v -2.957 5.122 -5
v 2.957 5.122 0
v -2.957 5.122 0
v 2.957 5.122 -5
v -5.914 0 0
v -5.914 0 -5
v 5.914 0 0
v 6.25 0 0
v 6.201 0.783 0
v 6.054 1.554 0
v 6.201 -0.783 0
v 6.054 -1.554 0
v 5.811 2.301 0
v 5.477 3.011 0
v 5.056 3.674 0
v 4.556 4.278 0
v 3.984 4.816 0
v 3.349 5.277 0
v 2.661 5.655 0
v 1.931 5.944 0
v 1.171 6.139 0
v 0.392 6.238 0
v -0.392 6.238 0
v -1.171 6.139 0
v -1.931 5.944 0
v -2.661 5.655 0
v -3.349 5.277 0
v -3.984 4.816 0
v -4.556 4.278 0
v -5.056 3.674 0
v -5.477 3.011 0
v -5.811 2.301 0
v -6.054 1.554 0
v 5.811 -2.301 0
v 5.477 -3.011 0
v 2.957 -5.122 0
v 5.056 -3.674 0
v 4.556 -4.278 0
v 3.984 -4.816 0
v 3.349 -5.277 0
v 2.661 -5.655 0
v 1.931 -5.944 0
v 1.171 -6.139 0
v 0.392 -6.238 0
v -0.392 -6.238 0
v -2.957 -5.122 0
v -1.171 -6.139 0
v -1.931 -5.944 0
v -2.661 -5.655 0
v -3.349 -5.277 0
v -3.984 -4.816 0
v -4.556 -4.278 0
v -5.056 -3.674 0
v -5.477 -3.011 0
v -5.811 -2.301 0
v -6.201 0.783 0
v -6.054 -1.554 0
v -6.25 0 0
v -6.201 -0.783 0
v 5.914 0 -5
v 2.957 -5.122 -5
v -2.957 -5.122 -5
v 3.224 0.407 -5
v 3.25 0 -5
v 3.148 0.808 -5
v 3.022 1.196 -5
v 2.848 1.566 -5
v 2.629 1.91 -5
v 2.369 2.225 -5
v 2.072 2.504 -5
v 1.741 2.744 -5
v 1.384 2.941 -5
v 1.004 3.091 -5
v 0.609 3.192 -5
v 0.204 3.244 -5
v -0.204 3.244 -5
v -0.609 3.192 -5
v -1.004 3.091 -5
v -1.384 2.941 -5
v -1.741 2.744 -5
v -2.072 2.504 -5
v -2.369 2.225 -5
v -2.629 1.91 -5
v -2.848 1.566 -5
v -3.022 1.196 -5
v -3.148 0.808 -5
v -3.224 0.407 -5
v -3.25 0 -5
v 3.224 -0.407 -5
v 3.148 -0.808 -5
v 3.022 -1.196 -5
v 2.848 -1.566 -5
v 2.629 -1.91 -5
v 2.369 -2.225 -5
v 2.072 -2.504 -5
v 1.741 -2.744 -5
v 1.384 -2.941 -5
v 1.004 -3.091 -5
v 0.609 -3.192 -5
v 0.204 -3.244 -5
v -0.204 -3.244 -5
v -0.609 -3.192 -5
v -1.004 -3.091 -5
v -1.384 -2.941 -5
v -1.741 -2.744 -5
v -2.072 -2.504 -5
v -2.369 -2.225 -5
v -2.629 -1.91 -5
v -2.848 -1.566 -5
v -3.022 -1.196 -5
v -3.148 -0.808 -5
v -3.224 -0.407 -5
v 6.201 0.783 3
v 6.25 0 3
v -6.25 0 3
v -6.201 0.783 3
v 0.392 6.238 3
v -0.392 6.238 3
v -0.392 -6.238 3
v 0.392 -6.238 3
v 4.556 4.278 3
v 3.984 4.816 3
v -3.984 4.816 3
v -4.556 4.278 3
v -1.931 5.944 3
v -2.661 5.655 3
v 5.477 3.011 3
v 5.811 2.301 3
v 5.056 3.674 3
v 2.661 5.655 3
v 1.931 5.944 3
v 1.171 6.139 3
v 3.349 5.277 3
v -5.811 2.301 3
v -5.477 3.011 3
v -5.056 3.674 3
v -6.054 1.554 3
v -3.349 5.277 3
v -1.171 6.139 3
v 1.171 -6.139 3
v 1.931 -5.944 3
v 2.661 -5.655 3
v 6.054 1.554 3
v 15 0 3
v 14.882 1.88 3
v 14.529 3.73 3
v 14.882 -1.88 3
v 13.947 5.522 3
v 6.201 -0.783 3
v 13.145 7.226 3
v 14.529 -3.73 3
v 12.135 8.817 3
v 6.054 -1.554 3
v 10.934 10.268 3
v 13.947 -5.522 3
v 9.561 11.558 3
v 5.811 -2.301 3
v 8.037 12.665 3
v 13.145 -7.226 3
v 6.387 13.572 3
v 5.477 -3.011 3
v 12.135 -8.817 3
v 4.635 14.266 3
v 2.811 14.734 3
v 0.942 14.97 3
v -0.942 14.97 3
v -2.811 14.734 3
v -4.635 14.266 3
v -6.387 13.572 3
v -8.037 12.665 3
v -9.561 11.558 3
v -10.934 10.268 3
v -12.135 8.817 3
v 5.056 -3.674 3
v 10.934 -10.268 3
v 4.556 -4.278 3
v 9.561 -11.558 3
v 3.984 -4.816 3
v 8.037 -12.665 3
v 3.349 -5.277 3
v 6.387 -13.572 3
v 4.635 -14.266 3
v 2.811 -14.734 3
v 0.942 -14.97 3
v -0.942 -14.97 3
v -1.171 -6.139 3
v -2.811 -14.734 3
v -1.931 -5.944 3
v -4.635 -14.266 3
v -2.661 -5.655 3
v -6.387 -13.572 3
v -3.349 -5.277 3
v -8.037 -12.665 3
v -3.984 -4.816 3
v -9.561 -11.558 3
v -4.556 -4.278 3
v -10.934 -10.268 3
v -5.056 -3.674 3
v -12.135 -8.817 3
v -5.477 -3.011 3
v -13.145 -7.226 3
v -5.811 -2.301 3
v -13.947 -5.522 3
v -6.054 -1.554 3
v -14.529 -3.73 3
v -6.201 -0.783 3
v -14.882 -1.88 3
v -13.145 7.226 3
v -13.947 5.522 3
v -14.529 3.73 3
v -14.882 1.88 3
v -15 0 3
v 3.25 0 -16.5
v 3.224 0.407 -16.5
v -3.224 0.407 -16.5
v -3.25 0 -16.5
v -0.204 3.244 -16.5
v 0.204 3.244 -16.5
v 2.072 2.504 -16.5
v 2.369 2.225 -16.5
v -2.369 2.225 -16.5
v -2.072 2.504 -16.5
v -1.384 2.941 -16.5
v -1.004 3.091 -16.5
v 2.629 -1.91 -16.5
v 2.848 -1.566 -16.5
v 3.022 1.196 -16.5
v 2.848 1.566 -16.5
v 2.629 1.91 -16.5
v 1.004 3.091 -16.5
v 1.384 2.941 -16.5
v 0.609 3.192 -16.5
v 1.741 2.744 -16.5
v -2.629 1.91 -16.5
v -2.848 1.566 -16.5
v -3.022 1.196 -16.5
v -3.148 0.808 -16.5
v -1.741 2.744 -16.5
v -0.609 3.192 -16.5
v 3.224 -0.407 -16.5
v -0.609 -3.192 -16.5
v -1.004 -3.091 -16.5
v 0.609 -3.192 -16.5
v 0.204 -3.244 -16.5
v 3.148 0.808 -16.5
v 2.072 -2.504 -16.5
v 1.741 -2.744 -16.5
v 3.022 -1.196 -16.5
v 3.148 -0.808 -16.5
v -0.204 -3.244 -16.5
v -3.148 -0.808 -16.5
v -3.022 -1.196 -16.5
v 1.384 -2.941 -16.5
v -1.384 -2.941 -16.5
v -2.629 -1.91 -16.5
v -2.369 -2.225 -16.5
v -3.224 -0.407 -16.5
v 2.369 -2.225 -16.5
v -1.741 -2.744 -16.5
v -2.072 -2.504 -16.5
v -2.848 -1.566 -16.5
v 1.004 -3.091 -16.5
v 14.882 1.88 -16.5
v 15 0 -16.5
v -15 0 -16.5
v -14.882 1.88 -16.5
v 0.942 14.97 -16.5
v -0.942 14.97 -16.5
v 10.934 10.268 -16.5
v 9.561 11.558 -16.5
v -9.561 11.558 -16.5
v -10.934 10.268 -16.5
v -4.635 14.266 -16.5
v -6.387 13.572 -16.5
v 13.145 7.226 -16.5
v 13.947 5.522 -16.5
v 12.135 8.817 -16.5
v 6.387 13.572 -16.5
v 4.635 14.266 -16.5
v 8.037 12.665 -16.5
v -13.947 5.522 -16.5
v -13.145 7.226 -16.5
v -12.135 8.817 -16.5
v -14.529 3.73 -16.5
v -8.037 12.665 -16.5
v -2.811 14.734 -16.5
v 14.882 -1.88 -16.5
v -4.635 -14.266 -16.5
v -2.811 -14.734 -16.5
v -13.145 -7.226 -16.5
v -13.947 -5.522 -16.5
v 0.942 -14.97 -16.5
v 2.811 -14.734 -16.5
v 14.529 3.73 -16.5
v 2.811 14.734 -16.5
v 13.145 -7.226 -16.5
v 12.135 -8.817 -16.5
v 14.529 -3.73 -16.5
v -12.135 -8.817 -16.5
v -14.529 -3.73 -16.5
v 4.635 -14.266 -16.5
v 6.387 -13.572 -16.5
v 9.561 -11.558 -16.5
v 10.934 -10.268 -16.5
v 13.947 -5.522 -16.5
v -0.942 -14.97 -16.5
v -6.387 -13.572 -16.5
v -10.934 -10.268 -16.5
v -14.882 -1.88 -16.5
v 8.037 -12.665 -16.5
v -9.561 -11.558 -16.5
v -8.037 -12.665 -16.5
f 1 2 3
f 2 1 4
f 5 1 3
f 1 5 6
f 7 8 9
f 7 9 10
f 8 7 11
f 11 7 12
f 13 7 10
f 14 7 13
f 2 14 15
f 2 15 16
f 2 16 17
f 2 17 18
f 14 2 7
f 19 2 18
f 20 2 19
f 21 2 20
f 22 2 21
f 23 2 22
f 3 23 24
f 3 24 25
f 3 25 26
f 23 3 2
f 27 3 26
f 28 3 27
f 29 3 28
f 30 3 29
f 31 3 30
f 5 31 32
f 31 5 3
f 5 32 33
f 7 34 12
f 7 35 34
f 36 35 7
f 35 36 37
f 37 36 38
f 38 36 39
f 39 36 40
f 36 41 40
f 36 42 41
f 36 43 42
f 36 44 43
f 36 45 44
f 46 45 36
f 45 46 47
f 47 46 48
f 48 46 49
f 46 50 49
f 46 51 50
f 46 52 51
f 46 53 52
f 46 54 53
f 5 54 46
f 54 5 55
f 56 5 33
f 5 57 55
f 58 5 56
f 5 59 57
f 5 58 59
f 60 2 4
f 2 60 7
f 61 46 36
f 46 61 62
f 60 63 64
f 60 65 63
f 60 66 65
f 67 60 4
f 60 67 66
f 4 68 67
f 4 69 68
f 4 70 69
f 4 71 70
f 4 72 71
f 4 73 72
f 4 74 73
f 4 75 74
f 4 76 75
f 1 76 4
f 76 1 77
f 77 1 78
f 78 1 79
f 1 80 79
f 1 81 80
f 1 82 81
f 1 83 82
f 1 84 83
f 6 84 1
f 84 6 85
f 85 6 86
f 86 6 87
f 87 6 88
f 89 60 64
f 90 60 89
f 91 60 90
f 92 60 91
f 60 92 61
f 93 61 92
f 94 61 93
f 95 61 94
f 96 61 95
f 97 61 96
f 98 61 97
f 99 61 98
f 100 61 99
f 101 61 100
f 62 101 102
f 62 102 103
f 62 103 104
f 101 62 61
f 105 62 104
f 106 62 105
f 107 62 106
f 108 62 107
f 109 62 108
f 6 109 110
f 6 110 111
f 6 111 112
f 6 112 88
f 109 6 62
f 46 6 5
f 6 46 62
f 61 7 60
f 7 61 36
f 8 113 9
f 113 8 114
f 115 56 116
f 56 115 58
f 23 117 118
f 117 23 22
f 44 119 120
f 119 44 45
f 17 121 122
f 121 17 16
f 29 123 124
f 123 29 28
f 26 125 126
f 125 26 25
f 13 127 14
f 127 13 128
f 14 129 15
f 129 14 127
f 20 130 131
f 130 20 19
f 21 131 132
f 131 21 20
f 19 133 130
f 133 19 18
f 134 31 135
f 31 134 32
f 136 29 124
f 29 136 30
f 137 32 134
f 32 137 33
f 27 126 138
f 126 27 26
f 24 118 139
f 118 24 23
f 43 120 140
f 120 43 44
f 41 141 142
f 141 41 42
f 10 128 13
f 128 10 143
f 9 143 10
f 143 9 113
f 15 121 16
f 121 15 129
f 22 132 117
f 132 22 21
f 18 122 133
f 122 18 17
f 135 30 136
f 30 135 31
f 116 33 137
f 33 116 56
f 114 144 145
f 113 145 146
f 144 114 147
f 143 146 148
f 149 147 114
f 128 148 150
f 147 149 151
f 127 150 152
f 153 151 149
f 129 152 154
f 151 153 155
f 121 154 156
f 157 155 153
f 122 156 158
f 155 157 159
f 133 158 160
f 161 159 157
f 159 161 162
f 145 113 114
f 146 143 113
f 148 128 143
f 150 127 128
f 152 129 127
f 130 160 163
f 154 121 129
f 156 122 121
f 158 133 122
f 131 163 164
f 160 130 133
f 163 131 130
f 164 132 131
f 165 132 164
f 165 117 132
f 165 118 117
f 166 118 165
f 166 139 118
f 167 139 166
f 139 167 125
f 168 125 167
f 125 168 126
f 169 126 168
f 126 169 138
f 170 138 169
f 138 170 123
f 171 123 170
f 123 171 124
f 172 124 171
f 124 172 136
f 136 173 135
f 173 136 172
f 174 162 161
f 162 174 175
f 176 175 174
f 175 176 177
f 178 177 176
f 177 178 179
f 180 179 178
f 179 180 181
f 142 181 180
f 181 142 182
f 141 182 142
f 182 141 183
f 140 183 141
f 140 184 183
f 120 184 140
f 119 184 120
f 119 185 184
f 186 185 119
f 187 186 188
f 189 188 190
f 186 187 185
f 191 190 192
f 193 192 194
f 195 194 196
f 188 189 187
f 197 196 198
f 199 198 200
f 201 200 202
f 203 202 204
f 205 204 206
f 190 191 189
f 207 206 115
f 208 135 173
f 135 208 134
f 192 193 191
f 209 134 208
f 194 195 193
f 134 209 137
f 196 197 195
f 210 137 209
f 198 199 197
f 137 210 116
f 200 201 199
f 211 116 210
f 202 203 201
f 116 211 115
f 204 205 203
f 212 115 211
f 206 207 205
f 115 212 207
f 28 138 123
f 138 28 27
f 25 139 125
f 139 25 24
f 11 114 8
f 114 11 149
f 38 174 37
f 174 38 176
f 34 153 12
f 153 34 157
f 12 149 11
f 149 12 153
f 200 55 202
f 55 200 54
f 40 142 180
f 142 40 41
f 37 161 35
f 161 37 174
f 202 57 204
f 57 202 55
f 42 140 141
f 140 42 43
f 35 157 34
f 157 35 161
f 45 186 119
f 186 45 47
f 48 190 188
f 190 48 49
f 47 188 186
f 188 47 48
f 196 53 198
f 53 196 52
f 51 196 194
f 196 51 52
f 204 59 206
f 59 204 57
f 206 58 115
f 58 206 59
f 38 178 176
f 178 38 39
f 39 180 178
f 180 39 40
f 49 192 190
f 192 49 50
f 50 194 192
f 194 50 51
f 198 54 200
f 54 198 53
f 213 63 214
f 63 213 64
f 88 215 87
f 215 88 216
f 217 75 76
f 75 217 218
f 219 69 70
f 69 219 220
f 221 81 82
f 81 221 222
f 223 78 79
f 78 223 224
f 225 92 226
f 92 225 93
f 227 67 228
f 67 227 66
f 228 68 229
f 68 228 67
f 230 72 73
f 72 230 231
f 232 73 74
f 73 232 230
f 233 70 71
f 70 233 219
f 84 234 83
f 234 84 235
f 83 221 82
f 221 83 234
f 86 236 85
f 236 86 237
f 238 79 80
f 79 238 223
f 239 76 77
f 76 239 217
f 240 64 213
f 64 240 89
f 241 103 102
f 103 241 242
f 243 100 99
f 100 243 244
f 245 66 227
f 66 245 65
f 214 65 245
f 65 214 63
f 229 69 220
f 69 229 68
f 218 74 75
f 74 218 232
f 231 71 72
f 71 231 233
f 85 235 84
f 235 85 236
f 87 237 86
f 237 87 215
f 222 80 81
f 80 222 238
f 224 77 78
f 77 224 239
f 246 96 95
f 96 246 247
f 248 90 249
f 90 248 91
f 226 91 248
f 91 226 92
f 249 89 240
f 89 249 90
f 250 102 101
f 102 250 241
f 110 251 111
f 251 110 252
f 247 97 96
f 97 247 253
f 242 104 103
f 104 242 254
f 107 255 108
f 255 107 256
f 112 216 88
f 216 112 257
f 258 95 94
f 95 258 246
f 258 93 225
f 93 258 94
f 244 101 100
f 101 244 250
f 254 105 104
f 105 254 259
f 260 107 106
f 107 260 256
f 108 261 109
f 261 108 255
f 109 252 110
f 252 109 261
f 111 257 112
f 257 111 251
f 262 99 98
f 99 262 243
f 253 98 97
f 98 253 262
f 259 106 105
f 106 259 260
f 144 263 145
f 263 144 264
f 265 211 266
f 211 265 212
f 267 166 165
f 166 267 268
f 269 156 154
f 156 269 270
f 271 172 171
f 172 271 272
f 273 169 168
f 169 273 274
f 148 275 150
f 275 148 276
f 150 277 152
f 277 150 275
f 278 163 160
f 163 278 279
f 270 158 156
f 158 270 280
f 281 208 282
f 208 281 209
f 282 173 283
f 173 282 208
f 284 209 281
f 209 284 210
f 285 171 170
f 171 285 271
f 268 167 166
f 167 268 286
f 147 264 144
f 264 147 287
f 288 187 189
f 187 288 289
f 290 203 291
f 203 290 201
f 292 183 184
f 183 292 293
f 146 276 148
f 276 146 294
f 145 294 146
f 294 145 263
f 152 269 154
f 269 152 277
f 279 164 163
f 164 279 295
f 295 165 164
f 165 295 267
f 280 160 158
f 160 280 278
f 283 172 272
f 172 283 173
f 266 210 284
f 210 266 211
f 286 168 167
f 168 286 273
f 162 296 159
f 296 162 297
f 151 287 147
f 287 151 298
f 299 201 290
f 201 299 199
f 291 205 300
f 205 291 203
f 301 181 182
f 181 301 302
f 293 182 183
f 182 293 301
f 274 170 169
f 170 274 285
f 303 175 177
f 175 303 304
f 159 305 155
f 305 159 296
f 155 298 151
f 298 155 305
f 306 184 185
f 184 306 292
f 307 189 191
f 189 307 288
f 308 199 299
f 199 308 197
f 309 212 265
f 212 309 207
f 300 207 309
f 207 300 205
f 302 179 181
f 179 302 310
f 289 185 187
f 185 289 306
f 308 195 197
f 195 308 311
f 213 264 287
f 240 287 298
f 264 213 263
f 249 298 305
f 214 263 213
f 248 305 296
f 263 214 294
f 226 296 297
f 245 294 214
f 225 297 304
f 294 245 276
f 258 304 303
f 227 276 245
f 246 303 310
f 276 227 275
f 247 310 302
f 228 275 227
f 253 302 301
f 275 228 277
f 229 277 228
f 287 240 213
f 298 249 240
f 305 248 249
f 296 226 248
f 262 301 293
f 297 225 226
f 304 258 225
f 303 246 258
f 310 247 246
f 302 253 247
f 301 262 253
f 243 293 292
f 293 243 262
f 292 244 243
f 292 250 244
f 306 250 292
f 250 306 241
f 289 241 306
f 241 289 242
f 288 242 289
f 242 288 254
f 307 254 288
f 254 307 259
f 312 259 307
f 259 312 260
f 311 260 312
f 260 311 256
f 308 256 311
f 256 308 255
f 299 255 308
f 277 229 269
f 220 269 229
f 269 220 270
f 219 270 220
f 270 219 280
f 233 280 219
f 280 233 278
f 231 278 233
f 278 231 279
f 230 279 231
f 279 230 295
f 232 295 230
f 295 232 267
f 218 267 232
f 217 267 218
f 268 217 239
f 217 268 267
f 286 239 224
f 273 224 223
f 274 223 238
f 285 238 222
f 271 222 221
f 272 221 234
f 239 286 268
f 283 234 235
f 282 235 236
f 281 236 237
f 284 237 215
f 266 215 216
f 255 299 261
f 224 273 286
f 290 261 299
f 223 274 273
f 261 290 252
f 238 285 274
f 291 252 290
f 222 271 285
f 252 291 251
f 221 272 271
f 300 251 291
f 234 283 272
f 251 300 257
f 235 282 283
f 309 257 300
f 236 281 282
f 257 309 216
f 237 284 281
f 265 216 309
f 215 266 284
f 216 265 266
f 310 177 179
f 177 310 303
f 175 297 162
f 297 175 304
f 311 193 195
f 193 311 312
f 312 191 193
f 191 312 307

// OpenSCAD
$fn = 50;

difference() {
	union() {
		translate(v = [0, 0, -16.5]) {
			cylinder(h = 19.5, r = 15.0);
		}
	}
	union() {
		translate(v = [0, 0, 0]) {
			rotate(a = [0, 0, 0]) {
				difference() {
					union() {
						translate(v = [0, 0, -5]) {
							linear_extrude(height = 5) {
								polygon(points = [[5.914249999999999, 0.0], [2.957125, 5.1218907443321156], [-2.9571249999999982, 5.1218907443321156], [-5.914249999999999, 7.242867331857232e-16], [-2.9571250000000022, -5.121890744332115], [2.9571249999999956, -5.121890744332118]]);
							}
						}
					}
					union();
				}
			}
		}
		#cylinder(h = 3, r = 6.25);
		#translate(v = [0, 0, -100.0]) {
			cylinder(h = 200, r = 3.25);
		}
	}
}
